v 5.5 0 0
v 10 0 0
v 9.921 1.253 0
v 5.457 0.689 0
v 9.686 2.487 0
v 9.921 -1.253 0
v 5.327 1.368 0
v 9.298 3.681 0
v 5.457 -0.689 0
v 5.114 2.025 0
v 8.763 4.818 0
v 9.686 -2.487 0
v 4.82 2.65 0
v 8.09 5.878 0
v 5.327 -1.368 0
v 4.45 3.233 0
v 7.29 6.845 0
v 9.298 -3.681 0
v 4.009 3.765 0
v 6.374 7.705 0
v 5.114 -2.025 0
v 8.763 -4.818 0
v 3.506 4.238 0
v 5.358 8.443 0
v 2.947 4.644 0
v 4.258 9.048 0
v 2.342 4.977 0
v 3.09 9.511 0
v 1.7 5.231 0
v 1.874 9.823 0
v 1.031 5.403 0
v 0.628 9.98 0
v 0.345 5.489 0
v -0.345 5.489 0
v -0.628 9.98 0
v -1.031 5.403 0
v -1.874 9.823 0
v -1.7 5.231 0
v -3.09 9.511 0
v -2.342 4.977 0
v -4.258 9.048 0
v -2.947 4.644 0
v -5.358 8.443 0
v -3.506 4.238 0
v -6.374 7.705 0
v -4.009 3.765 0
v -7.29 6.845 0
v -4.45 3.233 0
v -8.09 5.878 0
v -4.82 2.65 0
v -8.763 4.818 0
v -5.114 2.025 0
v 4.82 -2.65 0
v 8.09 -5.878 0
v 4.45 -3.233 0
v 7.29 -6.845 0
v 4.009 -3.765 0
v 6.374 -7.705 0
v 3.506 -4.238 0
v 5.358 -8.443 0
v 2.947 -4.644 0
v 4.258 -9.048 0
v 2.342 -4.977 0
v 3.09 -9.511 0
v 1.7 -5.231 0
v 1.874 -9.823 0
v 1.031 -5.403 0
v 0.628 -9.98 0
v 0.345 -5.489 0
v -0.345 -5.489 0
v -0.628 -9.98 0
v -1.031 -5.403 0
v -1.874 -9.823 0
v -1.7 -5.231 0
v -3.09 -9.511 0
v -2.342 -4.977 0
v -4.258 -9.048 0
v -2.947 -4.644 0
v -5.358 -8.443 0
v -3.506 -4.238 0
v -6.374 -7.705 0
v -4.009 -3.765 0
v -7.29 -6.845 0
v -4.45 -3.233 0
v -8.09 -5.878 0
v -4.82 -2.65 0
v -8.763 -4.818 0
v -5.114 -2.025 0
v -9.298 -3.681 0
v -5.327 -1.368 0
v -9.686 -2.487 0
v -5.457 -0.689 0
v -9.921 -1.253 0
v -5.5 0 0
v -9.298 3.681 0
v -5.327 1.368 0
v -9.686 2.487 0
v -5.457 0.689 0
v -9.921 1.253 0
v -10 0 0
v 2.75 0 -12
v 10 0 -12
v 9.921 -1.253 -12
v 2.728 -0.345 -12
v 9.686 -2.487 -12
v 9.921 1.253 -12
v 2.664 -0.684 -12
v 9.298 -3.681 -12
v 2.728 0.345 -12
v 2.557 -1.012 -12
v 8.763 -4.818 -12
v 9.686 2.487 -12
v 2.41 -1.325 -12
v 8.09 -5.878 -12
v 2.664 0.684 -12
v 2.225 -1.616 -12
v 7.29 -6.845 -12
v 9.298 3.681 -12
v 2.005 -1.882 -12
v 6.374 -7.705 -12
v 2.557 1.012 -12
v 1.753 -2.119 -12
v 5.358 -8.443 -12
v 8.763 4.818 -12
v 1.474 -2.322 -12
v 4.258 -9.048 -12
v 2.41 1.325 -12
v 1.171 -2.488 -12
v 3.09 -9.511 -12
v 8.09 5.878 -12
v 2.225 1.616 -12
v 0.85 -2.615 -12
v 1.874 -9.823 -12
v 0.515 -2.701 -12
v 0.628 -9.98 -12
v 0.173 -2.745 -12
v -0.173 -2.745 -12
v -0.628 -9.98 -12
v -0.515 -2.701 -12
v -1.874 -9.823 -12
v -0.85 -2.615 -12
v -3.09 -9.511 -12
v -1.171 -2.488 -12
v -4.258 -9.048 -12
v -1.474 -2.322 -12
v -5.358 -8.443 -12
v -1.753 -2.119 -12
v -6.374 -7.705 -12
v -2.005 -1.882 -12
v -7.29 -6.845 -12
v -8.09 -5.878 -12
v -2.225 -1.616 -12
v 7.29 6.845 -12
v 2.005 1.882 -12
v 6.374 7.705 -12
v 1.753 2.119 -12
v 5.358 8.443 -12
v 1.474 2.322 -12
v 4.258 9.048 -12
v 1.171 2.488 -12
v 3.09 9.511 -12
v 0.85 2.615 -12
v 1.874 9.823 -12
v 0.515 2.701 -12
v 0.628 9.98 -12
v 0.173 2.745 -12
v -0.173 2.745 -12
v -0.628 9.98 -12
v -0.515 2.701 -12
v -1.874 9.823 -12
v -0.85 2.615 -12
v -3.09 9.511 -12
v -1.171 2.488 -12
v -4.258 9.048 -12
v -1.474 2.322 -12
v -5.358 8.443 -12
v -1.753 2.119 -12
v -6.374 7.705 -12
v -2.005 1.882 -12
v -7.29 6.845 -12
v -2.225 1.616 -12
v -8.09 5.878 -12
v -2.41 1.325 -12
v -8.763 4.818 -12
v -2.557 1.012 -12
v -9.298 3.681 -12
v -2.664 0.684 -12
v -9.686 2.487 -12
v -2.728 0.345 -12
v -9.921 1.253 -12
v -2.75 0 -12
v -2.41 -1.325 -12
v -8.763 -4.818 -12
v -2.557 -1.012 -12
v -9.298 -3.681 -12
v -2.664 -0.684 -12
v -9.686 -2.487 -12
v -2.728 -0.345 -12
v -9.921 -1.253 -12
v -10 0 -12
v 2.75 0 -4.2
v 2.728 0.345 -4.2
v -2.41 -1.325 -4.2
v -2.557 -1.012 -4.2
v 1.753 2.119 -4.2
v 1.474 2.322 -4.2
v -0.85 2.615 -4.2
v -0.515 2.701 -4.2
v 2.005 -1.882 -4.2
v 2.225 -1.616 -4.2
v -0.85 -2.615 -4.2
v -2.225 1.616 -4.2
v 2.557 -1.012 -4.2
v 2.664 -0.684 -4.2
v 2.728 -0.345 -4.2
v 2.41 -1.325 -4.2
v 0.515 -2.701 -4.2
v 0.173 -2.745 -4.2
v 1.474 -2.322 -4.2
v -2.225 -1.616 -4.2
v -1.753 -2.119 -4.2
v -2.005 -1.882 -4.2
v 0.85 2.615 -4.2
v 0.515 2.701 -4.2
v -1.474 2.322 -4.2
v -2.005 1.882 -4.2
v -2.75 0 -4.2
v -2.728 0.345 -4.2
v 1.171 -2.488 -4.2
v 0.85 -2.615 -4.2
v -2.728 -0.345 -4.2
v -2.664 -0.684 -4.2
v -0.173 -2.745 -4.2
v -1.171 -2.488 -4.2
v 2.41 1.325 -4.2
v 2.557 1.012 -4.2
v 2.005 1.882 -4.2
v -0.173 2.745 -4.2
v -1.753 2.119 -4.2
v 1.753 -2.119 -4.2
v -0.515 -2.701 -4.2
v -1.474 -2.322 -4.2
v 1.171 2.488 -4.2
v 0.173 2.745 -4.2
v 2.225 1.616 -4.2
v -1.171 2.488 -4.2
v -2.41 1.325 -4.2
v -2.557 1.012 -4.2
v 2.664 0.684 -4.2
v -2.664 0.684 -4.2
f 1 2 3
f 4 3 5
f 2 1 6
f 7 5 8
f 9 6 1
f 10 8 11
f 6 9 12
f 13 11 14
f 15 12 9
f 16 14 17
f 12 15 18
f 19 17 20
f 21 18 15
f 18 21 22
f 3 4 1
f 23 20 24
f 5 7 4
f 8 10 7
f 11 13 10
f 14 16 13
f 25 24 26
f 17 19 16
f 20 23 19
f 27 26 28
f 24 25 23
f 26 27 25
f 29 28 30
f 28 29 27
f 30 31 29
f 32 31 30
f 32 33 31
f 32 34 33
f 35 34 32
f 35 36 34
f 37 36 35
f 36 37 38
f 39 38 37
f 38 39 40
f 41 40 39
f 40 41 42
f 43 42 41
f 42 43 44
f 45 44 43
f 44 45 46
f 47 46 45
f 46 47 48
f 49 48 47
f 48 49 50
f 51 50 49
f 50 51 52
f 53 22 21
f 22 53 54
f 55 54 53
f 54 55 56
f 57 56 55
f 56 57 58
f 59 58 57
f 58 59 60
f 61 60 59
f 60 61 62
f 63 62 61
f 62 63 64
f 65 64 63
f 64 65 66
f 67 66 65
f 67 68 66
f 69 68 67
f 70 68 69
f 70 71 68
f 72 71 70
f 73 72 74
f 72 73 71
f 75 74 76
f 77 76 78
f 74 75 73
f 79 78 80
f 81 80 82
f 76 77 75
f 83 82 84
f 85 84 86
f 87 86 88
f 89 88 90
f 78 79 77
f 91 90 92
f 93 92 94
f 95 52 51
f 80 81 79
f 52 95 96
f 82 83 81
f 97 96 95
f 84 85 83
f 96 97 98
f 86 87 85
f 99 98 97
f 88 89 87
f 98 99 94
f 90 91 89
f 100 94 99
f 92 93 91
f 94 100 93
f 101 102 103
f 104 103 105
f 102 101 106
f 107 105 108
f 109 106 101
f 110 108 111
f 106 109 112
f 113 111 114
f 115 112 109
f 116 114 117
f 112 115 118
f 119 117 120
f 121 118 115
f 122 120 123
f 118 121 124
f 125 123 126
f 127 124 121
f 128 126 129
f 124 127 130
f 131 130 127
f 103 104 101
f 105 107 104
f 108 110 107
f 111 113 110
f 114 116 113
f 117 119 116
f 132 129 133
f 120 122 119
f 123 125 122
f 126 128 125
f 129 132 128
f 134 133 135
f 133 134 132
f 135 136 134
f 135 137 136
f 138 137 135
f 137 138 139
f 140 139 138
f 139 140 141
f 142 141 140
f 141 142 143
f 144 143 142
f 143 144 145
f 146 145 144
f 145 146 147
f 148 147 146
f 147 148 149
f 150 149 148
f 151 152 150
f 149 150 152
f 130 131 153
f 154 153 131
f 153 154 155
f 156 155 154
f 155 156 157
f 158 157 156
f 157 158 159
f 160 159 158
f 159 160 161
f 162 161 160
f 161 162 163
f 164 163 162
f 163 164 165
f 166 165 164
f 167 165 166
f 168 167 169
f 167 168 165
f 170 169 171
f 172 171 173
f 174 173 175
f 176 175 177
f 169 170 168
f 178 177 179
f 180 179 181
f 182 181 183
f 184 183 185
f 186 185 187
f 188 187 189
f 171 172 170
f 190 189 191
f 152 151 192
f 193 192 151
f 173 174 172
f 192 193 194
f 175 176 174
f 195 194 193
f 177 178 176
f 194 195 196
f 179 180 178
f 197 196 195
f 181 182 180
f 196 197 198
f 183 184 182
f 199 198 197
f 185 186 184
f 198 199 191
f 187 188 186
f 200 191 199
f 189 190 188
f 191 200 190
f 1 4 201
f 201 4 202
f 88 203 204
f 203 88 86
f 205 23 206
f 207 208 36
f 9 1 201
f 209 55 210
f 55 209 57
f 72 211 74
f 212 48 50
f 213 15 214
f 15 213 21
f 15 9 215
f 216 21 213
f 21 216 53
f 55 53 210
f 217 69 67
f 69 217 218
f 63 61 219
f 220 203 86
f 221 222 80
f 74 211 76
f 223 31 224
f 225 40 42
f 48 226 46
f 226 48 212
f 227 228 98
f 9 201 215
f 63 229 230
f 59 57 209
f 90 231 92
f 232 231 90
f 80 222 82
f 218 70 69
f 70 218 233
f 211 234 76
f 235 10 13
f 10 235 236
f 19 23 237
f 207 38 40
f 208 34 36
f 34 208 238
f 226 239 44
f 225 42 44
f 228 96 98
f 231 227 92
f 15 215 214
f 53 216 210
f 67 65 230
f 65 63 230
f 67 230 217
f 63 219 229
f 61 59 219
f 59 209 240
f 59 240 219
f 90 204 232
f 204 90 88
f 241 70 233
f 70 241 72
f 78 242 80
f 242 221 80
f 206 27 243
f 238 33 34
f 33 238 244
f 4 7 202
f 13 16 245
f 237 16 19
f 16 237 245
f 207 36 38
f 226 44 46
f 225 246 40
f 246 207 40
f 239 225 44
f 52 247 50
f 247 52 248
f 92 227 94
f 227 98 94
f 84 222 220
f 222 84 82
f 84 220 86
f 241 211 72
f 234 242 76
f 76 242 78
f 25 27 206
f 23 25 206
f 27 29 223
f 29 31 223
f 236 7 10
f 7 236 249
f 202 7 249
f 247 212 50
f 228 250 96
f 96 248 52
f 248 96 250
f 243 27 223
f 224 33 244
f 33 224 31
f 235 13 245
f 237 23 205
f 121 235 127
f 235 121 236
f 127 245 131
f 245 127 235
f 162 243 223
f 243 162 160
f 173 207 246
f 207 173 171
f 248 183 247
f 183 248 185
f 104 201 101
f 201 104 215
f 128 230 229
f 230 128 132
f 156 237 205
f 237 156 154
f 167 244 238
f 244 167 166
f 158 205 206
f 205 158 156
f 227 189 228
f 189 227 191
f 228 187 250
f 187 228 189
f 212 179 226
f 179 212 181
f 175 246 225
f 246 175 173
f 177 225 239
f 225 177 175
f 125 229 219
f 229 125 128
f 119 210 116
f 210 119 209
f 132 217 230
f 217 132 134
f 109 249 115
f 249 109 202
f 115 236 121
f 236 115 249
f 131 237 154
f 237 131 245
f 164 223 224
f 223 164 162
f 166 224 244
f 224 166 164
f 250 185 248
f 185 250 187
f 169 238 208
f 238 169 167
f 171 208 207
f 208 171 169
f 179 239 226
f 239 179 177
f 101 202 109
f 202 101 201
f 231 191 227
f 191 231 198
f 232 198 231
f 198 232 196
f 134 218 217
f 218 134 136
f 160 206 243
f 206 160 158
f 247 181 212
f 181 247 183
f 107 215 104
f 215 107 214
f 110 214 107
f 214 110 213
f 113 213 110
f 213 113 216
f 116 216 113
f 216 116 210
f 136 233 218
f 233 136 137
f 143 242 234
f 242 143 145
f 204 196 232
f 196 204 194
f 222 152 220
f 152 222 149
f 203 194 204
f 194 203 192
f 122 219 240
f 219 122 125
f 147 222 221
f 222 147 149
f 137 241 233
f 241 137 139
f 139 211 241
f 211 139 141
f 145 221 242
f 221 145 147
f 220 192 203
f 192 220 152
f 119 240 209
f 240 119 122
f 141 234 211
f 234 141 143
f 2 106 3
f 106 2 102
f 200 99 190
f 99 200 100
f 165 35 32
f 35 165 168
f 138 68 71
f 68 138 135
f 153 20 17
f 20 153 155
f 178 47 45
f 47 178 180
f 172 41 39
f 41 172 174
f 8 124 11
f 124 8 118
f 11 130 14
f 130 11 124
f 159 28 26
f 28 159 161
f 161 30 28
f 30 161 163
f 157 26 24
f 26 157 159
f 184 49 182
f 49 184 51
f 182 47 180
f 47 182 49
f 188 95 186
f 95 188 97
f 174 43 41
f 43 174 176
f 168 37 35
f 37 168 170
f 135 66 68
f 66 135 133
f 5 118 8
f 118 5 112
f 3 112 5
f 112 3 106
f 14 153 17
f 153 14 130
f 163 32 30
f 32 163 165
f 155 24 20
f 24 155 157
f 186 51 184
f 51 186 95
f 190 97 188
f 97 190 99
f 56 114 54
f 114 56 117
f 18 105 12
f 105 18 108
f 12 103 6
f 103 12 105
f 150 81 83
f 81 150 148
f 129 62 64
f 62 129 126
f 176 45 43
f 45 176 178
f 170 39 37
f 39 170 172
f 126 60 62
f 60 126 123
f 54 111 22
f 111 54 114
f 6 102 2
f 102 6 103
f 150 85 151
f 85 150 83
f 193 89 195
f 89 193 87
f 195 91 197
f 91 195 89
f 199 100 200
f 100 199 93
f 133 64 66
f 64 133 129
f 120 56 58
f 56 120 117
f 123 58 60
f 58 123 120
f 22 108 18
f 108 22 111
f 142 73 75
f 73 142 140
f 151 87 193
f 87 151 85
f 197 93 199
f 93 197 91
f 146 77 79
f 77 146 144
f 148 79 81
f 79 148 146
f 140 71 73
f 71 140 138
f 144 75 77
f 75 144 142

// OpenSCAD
$fn = 50;


difference() {
	union() {
		translate(v = [0, 0, -12.0000000000]) {
			cylinder(h = 12, r = 10.0000000000);
		}
		cylinder(h = 0, r = 16.0000000000);
	}
	union() {
		translate(v = [0, 0, 0]) {
			rotate(a = [0, 0, 0]) {
				difference() {
					union() {
						#translate(v = [0, 0, -12.0000000000]) {
							cylinder(h = 12, r = 2.2500000000);
						}
						#translate(v = [0, 0, -4.2000000000]) {
							cylinder(h = 4.2000000000, r = 10.0000000000, r1 = 2.7500000000, r2 = 5.5000000000);
						}
						#translate(v = [0, 0, -12.0000000000]) {
							cylinder(h = 12, r = 2.7500000000);
						}
						#translate(v = [0, 0, -12.0000000000]) {
							cylinder(h = 12, r = 2.2500000000);
						}
					}
					union();
				}
			}
		}
	}
}
